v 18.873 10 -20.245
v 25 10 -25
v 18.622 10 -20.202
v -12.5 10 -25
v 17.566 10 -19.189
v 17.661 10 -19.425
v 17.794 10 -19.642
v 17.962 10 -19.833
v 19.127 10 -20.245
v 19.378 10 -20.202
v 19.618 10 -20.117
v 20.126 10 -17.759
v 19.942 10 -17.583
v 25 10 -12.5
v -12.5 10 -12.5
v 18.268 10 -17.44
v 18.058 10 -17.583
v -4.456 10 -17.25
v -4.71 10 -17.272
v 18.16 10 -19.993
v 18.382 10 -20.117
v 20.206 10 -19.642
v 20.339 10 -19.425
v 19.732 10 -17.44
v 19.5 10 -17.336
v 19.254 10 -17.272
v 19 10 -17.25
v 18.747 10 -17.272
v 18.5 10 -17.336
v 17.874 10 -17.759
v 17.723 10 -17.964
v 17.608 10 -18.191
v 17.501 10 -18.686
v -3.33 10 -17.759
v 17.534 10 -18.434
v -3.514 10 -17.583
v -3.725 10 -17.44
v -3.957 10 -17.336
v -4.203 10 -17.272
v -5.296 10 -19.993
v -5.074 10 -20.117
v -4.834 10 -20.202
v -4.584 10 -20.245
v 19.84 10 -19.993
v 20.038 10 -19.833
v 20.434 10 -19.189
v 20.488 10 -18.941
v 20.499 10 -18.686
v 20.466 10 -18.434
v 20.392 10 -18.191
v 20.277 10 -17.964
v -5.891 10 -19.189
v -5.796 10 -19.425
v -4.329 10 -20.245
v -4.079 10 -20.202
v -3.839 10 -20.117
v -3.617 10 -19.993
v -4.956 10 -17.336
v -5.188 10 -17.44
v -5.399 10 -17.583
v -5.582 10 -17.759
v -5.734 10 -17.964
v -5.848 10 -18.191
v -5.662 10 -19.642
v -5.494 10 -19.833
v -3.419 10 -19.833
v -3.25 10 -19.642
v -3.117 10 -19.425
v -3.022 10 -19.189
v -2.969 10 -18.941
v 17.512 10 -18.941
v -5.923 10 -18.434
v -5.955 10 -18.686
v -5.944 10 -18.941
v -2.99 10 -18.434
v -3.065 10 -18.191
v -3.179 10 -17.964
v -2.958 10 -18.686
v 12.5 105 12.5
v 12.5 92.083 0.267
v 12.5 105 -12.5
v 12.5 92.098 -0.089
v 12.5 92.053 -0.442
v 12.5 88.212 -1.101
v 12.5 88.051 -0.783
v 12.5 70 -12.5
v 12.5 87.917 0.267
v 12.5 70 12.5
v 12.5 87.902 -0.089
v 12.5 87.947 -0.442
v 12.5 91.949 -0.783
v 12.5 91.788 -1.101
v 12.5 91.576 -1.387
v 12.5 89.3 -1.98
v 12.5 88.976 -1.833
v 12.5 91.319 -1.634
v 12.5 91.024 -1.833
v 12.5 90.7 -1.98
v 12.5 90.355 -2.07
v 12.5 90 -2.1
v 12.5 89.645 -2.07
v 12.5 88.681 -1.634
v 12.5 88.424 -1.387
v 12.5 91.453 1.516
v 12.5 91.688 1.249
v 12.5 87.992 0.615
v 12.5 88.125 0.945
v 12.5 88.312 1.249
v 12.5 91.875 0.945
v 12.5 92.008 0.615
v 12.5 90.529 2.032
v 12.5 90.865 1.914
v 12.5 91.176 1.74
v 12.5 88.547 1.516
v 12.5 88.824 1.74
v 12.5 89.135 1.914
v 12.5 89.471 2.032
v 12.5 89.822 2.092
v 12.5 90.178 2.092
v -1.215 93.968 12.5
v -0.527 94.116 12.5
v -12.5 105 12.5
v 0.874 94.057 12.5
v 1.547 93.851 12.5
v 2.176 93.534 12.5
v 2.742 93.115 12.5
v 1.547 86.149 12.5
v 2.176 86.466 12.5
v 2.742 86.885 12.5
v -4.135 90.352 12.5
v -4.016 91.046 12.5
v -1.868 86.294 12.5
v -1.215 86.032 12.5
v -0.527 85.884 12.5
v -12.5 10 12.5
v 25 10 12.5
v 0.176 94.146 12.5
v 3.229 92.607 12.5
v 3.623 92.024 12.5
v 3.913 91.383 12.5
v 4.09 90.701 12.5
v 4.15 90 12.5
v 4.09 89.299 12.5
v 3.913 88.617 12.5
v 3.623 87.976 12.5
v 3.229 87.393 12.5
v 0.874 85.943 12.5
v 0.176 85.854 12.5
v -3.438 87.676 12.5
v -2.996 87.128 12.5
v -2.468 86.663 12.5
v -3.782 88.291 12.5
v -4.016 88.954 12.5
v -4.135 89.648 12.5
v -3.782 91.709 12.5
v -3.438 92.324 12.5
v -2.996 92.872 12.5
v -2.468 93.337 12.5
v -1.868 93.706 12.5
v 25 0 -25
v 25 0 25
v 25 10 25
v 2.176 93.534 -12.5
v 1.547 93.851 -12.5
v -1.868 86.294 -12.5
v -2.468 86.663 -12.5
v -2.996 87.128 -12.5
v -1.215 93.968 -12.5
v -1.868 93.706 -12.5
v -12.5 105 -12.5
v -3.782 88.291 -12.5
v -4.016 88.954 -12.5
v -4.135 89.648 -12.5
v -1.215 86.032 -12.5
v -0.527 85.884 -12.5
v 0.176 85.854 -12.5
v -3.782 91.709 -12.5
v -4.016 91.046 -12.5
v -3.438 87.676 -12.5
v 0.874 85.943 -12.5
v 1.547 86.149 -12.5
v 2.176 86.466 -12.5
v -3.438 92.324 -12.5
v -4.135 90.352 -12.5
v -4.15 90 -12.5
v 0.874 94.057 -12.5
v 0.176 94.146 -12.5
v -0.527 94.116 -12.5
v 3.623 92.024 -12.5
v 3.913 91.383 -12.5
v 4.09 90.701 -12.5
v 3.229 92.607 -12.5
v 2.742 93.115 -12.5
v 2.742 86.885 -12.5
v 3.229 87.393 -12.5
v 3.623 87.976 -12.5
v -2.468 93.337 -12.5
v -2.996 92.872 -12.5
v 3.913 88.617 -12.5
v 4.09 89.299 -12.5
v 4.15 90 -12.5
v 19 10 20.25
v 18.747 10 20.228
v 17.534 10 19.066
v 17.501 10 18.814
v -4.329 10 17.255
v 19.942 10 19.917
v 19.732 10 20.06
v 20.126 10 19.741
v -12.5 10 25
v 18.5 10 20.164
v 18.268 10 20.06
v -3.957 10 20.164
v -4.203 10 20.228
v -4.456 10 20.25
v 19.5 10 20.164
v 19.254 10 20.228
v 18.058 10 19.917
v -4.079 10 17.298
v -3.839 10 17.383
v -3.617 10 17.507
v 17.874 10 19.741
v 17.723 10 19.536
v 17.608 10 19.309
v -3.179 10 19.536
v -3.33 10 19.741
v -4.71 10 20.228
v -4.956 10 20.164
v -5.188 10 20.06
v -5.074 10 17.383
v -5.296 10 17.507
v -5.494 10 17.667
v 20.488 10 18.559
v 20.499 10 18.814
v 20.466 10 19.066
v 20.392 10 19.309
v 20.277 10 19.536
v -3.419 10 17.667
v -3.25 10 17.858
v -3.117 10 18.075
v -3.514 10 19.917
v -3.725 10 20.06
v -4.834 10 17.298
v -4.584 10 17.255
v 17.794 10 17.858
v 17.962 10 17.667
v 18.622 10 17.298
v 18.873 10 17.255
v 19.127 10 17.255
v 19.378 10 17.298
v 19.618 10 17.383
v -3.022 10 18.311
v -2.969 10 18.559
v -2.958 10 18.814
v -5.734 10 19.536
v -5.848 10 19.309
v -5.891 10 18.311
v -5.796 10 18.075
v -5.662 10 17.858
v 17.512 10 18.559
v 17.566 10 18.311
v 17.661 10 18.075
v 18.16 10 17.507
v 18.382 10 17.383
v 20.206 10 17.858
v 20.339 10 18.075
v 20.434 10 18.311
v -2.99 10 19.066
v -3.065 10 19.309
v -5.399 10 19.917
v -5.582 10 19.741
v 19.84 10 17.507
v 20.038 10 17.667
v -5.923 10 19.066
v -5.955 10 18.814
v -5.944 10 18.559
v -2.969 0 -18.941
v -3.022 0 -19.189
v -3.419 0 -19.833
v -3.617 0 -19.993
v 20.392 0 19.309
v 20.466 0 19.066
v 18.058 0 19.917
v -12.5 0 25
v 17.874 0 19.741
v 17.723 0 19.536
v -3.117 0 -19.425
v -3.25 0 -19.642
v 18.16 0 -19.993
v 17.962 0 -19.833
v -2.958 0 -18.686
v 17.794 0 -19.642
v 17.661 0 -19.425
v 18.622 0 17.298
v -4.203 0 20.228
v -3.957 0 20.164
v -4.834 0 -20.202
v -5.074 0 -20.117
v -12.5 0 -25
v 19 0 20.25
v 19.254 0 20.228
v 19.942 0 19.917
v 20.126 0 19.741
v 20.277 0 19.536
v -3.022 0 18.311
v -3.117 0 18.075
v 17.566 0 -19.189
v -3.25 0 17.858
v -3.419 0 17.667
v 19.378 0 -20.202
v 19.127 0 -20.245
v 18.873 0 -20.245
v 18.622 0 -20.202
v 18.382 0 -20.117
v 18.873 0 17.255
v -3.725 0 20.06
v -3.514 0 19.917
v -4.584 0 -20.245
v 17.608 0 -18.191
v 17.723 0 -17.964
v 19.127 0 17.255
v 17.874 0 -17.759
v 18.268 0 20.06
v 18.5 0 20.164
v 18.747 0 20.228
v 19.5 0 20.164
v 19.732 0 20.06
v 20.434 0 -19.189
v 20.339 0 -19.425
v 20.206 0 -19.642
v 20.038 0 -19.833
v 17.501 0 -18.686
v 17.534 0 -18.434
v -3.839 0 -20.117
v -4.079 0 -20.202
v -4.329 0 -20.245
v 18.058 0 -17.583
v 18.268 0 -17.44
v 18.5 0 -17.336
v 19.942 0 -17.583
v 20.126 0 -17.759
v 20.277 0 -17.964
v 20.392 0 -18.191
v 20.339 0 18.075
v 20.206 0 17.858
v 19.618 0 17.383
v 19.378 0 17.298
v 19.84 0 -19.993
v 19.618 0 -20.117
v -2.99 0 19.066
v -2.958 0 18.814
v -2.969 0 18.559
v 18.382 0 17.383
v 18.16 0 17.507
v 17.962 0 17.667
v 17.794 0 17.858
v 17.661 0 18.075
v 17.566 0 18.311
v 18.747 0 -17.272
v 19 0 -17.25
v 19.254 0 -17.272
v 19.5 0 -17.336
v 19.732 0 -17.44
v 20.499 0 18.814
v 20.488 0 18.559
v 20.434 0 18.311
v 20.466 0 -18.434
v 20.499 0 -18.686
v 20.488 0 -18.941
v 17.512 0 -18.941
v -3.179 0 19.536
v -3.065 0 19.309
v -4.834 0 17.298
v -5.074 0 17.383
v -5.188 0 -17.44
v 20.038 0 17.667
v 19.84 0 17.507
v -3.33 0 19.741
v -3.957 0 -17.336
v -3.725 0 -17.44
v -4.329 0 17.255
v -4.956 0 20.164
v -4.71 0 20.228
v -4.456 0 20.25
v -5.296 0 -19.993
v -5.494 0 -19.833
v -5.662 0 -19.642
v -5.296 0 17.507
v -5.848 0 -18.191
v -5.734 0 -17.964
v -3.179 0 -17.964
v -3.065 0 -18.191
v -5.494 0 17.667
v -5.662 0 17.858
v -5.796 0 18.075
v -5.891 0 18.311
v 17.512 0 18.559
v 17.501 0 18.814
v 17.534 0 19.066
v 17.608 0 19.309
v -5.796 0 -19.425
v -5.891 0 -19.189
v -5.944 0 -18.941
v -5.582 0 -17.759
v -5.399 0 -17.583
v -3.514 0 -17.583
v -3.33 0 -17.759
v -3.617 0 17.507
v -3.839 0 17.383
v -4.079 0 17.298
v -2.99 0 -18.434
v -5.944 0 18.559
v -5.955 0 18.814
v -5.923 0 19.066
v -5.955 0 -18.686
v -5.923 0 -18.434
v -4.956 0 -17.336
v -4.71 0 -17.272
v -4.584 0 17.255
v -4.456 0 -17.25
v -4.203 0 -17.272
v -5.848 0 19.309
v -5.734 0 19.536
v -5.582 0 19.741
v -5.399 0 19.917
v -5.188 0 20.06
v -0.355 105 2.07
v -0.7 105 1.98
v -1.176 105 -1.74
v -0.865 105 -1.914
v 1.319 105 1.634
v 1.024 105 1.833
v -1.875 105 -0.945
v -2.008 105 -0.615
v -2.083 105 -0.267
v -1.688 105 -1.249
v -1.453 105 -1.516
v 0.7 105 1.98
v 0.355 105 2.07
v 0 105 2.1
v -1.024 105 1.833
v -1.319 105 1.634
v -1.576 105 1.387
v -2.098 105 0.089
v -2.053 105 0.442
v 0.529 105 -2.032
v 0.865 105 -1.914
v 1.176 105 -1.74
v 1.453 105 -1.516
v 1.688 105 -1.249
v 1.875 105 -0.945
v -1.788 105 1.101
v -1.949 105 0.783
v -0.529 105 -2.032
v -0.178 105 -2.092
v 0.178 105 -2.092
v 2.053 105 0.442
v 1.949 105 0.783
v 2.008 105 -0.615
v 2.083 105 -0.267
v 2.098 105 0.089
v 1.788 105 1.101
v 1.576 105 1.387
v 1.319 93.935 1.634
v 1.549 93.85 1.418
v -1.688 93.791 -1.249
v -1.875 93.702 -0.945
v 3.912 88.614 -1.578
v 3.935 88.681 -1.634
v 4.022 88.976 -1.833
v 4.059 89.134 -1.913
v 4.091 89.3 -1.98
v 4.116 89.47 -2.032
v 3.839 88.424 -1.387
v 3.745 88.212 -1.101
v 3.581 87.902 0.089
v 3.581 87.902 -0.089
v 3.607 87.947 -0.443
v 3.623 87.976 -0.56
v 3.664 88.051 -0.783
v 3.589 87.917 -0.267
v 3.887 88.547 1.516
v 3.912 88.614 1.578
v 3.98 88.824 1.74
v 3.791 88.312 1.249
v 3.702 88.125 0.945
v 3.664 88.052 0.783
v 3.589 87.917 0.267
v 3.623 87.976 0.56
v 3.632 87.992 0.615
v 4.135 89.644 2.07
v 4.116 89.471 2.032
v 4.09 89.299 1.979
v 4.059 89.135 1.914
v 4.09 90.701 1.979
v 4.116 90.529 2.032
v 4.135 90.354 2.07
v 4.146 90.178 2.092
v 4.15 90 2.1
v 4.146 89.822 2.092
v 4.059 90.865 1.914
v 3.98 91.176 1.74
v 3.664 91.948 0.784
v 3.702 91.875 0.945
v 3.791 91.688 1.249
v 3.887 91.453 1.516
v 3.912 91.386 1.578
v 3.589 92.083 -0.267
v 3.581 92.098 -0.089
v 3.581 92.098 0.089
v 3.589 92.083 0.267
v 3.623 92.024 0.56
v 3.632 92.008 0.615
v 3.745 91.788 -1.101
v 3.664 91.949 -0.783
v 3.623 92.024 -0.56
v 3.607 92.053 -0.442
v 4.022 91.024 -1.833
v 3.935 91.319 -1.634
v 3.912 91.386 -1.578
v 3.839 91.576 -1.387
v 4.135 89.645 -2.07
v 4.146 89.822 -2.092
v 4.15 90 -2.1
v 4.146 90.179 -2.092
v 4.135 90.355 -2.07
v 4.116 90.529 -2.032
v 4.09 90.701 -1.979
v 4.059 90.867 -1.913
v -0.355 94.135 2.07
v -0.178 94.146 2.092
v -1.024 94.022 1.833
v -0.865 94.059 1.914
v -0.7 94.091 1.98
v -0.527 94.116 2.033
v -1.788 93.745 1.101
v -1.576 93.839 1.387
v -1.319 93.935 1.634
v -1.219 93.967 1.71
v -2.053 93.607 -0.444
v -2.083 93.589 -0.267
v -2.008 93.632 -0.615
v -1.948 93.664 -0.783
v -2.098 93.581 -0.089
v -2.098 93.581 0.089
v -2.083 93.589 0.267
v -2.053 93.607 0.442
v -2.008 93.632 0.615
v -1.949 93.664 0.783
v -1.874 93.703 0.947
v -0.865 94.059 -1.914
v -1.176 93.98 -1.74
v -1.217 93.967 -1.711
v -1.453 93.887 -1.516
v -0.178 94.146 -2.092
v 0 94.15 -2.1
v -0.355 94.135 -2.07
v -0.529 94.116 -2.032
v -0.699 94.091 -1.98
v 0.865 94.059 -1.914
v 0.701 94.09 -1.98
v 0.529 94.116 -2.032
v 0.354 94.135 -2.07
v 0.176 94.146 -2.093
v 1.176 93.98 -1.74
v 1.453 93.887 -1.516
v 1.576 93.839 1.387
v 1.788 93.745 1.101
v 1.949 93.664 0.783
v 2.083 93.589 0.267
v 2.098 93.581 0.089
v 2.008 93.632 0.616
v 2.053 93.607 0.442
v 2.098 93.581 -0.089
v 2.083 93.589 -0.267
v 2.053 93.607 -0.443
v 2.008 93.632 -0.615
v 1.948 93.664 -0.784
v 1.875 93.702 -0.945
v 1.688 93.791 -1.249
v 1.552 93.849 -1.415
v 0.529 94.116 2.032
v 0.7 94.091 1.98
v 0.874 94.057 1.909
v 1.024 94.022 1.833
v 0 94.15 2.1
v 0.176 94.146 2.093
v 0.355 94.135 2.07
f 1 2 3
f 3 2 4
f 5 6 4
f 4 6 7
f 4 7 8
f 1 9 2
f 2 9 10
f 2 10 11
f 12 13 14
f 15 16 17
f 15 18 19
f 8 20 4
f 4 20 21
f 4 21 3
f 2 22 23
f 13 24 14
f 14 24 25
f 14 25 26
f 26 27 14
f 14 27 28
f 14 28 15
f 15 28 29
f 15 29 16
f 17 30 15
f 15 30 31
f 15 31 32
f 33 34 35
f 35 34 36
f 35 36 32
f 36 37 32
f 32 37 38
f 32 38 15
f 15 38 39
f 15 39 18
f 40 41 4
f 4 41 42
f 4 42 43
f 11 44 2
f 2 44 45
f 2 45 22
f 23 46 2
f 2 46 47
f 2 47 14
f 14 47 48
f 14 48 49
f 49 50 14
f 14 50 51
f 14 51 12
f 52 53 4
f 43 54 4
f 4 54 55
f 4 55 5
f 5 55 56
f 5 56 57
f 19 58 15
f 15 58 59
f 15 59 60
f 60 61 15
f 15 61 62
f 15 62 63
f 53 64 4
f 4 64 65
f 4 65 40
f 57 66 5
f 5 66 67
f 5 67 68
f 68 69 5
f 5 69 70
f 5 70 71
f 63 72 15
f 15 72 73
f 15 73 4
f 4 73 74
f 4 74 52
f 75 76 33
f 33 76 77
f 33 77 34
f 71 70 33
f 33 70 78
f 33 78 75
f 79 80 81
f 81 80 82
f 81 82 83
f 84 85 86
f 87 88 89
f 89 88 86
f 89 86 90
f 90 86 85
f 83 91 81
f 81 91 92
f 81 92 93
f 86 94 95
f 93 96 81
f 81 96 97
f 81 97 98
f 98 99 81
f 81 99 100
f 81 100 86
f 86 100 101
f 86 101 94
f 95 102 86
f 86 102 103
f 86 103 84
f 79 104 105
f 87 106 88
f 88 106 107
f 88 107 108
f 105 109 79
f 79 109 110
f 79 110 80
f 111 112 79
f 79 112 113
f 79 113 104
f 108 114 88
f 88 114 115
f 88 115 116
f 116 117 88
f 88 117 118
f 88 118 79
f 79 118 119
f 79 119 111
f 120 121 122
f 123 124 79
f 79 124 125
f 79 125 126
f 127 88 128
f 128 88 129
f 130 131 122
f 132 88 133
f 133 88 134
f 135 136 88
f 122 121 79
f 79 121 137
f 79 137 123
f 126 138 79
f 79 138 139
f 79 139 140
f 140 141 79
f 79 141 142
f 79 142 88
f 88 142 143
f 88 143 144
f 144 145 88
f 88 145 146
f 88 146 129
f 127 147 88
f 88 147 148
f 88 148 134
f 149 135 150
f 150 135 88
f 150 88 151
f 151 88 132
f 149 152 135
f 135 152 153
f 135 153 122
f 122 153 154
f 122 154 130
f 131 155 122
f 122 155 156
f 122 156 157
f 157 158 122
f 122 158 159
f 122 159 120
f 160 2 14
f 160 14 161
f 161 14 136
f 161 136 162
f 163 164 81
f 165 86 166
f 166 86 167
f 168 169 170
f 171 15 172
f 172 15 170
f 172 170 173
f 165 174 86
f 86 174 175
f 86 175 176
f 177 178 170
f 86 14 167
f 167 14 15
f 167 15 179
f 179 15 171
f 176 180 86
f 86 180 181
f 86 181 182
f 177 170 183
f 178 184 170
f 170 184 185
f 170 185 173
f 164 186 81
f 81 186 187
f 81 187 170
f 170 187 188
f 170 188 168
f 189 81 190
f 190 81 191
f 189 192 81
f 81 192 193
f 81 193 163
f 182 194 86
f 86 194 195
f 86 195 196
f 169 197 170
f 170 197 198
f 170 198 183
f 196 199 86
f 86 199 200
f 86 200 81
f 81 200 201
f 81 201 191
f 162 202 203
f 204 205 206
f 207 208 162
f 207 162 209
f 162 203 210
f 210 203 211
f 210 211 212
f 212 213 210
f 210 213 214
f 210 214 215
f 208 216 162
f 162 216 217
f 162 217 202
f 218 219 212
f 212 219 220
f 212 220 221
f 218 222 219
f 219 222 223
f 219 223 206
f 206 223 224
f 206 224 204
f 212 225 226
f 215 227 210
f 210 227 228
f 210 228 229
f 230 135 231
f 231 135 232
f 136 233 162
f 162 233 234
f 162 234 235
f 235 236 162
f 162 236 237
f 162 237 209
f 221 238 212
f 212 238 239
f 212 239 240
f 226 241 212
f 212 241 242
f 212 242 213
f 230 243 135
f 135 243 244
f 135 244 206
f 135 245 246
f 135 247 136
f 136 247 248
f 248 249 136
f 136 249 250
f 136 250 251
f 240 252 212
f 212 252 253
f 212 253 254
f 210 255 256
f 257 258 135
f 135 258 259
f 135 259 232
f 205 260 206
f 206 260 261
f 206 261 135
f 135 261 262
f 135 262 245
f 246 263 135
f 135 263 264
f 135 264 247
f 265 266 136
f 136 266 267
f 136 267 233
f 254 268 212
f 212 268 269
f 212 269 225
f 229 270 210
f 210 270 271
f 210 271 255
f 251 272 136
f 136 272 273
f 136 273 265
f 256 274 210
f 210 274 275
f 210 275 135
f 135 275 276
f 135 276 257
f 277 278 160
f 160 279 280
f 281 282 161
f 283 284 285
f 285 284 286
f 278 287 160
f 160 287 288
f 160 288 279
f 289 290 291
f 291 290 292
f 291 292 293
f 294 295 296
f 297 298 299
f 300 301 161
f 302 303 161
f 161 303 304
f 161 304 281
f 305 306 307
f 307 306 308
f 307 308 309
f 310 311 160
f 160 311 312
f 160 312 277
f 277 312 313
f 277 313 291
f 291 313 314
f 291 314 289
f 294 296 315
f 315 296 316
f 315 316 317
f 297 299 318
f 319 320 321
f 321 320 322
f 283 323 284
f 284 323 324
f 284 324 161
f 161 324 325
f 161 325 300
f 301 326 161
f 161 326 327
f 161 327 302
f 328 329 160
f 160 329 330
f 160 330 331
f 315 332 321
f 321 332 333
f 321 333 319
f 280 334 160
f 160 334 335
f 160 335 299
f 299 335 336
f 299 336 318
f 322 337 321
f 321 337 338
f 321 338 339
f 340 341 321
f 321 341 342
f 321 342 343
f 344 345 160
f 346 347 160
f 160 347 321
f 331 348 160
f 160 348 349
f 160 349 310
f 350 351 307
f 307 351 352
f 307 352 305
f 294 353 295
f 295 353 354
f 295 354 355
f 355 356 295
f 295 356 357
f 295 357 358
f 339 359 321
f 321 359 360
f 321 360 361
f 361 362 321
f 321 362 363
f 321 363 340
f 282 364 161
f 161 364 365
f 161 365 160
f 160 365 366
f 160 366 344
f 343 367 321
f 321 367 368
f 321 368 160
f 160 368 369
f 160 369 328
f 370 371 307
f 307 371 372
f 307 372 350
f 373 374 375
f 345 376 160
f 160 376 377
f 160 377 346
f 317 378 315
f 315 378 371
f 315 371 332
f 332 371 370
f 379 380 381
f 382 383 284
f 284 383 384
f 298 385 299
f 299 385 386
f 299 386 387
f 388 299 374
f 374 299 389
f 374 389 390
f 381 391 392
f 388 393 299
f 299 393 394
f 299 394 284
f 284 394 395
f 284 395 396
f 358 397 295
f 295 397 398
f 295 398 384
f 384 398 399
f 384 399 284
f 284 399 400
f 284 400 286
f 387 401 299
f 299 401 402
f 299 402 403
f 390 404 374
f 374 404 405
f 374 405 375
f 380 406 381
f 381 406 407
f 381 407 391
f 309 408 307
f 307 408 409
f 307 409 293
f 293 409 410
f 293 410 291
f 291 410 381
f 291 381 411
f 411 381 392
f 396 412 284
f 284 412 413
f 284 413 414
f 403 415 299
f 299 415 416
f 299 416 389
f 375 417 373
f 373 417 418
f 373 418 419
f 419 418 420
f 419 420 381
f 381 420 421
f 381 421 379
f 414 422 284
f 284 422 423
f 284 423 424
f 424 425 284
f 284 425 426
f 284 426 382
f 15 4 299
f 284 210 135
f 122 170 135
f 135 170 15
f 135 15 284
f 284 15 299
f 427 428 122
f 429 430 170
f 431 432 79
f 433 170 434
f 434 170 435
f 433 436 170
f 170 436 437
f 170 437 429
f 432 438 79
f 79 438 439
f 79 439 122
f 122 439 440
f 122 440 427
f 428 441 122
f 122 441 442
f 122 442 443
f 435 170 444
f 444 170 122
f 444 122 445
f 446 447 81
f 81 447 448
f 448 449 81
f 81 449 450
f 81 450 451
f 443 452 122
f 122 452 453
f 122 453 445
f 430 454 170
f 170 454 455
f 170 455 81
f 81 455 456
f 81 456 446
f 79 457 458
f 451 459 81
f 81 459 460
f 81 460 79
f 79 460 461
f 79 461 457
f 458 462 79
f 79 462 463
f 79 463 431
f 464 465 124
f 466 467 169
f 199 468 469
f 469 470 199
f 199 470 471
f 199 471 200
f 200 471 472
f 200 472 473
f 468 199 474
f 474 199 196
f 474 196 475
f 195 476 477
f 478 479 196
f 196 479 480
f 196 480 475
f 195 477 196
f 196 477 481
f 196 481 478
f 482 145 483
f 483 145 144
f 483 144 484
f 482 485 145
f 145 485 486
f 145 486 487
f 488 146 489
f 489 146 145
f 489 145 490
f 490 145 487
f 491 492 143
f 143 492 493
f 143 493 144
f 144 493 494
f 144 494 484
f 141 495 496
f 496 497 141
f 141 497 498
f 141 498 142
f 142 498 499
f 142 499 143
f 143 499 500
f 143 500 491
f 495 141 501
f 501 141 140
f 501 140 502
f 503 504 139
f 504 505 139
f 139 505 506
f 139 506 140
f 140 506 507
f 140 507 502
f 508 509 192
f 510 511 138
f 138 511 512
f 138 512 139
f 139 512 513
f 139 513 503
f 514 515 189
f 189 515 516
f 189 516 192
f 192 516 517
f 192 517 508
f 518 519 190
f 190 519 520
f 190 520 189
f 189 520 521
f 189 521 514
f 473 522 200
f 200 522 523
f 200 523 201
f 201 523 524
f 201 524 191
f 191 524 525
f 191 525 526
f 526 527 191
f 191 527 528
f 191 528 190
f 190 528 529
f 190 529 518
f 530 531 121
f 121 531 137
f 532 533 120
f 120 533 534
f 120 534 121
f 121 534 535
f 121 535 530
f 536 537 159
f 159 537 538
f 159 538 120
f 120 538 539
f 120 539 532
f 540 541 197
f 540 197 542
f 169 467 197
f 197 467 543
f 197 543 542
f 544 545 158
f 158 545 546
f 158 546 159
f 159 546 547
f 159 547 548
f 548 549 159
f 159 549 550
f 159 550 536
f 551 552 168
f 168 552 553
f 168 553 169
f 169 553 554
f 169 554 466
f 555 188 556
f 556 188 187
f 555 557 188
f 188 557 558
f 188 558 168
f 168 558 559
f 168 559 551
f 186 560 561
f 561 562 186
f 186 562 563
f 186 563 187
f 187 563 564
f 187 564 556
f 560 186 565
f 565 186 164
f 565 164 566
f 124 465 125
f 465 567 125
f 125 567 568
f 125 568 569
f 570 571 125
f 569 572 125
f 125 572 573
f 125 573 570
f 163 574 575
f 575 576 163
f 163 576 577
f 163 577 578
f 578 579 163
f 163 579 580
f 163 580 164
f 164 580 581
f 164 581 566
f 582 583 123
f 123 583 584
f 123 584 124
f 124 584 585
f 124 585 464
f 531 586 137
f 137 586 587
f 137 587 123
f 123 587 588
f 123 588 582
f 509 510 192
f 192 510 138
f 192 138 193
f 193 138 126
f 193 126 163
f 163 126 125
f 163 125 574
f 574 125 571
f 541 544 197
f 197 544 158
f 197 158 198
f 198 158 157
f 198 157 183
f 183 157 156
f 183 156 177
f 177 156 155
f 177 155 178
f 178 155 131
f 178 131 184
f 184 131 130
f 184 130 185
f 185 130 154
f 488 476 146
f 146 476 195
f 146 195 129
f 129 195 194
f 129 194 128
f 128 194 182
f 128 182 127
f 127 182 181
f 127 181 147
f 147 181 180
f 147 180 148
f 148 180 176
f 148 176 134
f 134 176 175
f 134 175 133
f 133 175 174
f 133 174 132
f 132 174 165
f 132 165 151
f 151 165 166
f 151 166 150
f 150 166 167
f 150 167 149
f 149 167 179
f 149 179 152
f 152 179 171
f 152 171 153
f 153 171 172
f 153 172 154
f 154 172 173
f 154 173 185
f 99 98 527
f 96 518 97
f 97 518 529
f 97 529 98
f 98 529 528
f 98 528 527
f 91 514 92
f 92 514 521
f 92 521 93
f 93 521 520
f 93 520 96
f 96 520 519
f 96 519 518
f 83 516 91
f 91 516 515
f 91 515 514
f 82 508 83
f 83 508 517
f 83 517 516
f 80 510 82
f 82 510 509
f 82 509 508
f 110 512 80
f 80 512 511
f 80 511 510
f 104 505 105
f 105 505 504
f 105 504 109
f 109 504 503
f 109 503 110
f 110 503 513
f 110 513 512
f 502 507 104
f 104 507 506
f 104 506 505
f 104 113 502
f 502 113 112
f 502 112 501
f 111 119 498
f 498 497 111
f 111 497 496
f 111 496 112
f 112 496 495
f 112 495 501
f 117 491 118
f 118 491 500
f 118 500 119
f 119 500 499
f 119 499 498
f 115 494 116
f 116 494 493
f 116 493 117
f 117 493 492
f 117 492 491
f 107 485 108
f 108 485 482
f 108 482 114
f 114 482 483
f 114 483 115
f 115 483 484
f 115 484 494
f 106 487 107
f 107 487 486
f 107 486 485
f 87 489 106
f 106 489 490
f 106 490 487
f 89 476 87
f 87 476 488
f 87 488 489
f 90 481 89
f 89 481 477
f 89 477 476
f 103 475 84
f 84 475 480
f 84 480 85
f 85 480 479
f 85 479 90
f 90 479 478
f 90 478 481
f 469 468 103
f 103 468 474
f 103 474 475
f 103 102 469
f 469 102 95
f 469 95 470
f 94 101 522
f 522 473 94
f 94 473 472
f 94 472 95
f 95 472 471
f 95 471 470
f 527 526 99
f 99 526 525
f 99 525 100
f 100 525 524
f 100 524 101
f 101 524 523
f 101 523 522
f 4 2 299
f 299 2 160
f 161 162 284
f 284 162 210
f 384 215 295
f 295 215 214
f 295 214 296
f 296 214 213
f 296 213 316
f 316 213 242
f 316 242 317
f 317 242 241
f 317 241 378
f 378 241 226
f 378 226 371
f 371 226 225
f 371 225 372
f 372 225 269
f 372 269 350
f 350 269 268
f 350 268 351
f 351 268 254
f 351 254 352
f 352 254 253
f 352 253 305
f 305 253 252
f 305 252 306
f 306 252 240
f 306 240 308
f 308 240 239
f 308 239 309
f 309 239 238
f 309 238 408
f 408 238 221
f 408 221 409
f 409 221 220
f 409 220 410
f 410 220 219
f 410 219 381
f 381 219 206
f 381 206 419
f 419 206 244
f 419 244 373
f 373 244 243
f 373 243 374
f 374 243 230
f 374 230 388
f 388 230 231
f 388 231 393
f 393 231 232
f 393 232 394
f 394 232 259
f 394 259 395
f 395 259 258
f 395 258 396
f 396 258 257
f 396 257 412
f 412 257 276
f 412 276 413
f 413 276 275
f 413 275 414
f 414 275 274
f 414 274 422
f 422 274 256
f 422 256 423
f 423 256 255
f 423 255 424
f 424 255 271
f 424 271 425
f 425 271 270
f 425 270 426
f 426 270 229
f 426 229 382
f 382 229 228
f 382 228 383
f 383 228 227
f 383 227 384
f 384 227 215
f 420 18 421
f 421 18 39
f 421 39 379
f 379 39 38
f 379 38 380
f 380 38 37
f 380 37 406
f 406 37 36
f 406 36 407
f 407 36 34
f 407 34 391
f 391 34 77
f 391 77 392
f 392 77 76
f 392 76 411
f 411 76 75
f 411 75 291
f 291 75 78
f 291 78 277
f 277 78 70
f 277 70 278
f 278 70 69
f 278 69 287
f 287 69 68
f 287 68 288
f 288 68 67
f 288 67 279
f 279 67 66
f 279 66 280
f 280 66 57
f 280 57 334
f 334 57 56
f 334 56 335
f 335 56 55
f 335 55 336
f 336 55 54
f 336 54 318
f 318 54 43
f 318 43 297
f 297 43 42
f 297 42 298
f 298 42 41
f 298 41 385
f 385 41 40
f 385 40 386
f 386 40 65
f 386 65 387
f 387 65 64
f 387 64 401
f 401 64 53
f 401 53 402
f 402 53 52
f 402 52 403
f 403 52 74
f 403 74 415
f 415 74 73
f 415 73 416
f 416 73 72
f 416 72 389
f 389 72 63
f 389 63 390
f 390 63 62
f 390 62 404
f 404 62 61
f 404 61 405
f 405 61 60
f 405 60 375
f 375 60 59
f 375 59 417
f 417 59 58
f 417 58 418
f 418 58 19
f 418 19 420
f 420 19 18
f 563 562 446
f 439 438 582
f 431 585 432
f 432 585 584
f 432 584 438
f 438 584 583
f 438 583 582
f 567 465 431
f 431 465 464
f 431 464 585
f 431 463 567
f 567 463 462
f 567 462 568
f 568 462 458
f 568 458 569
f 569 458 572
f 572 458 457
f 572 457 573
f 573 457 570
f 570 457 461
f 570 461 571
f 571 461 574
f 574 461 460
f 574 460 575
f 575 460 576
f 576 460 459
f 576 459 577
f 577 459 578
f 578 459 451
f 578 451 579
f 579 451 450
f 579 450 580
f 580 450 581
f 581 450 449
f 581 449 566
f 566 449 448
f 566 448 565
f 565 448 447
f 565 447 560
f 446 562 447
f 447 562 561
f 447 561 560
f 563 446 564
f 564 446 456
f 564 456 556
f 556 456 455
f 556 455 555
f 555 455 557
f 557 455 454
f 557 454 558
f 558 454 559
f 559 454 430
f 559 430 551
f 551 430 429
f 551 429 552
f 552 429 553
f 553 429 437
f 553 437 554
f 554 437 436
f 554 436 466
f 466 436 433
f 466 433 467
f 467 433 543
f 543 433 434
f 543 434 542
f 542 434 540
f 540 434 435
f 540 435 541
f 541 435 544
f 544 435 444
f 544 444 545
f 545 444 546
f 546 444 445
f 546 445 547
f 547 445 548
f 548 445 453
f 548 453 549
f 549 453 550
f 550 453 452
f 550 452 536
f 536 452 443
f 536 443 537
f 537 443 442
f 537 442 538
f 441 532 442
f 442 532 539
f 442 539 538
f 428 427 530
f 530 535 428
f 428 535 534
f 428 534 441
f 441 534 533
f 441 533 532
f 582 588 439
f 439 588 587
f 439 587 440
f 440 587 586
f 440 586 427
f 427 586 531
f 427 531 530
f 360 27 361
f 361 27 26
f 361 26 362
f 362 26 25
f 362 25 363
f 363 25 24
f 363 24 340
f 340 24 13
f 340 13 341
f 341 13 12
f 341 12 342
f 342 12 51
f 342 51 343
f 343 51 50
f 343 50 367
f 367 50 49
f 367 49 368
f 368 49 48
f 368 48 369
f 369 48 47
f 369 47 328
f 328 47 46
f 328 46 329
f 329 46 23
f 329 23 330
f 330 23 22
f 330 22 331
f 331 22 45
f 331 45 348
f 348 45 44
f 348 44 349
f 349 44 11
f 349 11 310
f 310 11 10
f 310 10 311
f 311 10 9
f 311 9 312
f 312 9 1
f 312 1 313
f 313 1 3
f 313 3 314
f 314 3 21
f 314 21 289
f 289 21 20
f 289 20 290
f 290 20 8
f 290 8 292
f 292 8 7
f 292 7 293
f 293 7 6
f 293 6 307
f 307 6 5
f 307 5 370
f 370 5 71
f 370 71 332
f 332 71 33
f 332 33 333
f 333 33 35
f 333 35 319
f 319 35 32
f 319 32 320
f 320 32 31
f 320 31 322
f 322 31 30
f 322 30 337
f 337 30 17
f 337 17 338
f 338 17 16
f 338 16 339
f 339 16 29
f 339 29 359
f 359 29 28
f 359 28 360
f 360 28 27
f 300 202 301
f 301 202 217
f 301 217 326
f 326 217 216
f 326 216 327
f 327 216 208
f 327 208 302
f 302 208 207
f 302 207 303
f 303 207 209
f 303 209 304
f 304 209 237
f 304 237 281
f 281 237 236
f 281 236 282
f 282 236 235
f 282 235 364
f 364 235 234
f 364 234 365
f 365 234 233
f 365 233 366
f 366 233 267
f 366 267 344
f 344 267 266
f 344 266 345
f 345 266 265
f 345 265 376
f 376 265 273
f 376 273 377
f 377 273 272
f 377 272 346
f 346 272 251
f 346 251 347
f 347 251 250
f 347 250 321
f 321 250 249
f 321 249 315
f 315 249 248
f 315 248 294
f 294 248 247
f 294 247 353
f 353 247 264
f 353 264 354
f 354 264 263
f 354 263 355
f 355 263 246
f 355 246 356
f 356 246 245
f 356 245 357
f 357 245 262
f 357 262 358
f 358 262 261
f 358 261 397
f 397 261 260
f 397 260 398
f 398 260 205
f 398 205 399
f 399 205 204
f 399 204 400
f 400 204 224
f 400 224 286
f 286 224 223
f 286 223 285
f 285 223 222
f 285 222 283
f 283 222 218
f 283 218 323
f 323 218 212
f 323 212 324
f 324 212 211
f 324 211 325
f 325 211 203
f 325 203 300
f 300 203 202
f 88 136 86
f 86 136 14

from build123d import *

# Parameters (mm, degrees)
CROQUIS1_W              = 50
CROQUIS1_H              = 25
SALIENTE_EXTRUIR1_DEPTH = 10
CROQUIS1_3_W            = 25
CROQUIS1_3_H            = 25
SALIENTE_EXTRUIR2_DEPTH = 105
CROQUIS2_R              = 4.15
CORTAR_EXTRUIR1_DEPTH   = 60
CROQUIS3_R              = 2.1
CORTAR_EXTRUIR2_DEPTH   = 10
CROQUIS1_4_W            = 50
CROQUIS1_4_H            = 12.5
SALIENTE_EXTRUIR3_DEPTH = 10
CROQUIS5_R              = 1.5
CORTAR_EXTRUIR4_DEPTH   = 10
CORTAR_EXTRUIR7_DEPTH   = 10
CROQUIS8_R              = 2.1
CORTAR_EXTRUIR9_DEPTH   = 15
CROQUIS9_R              = 1.5
CORTAR_EXTRUIR10_DEPTH  = 10
SALIENTE_EXTRUIR4_DEPTH = 12.5


with BuildPart() as part:
    # Croquis1 → Saliente-Extruir1 (new body)
    with BuildSketch(Plane(origin=(0, 0, 0), x_dir=(1, 0, 0), z_dir=(0, 1, 0))):
        Rectangle(CROQUIS1_W, CROQUIS1_H)
    extrude(amount=SALIENTE_EXTRUIR1_DEPTH)

    # Croquis1<3> → Saliente-Extruir2 (add)
    with BuildSketch(Plane(origin=(0, 0, 0), x_dir=(1, 0, 0), z_dir=(0, 1, 0))):
        Rectangle(CROQUIS1_3_W, CROQUIS1_3_H)
    extrude(amount=SALIENTE_EXTRUIR2_DEPTH)

    # Croquis2 → Cortar-Extruir1 (cut)
    with BuildSketch(Plane.XY.offset(12.5)):
        with Locations((0, 90)):
            Circle(CROQUIS2_R)
    extrude(amount=-CORTAR_EXTRUIR1_DEPTH, mode=Mode.SUBTRACT)

    # Croquis3 → Cortar-Extruir2 (cut)
    with BuildSketch(Plane(origin=(12.5, 0, 0), x_dir=(0, 0, -1), z_dir=(1, 0, 0))):
        with Locations((0, 90)):
            Circle(CROQUIS3_R)
    extrude(amount=-CORTAR_EXTRUIR2_DEPTH, mode=Mode.SUBTRACT)

    # Croquis1<4> → Saliente-Extruir3 (add)
    with BuildSketch(Plane(origin=(0, 0, 0), x_dir=(1, 0, 0), z_dir=(0, 1, 0))):
        with Locations((0, -18.75)):
            Rectangle(CROQUIS1_4_W, CROQUIS1_4_H)
        with Locations((0, 18.75)):
            Rectangle(CROQUIS1_4_W, CROQUIS1_4_H)
    extrude(amount=SALIENTE_EXTRUIR3_DEPTH)

    # Croquis5 → Cortar-Extruir4 (cut)
    with BuildSketch(Plane(origin=(0, 10, 0), x_dir=(1, 0, 0), z_dir=(0, 1, 0))):
        with Locations((-4.456486884, 18.75)):
            Circle(CROQUIS5_R)
        with Locations((-4.456486884, -18.75)):
            Circle(CROQUIS5_R)
    extrude(amount=-CORTAR_EXTRUIR4_DEPTH, mode=Mode.SUBTRACT)

    # Croquis6 → Cortar-Extruir7 (cut)
    with BuildSketch(Plane(origin=(0, 10, 0), x_dir=(1, 0, 0), z_dir=(0, 1, 0))):
        Polygon((-12.5, 25), (-12.5, 12.5), (-12.5, -12.5), (-12.5, -25), (-25, -25), (-25, 25), align=None)
    extrude(amount=-CORTAR_EXTRUIR7_DEPTH, mode=Mode.SUBTRACT)

    # Croquis8 → Cortar-Extruir9 (cut)
    with BuildSketch(Plane(origin=(0, 105, 0), x_dir=(1, 0, 0), z_dir=(0, 1, 0))):
        Circle(CROQUIS8_R)
    extrude(amount=-CORTAR_EXTRUIR9_DEPTH, mode=Mode.SUBTRACT)

    # Croquis9 → Cortar-Extruir10 (cut)
    with BuildSketch(Plane(origin=(0, 10, 0), x_dir=(1, 0, 0), z_dir=(0, 1, 0))):
        with Locations((19, -18.75)):
            Circle(CROQUIS9_R)
        with Locations((19, 18.75)):
            Circle(CROQUIS9_R)
    extrude(amount=-CORTAR_EXTRUIR10_DEPTH, mode=Mode.SUBTRACT)

    # Croquis10 → Saliente-Extruir4 (add, symmetric)
    with BuildSketch(Plane.XY):
        Polygon((12.5, 10), (25, 10), (12.5, 70), align=None)
    extrude(amount=SALIENTE_EXTRUIR4_DEPTH, both=True)


solid = part.part
